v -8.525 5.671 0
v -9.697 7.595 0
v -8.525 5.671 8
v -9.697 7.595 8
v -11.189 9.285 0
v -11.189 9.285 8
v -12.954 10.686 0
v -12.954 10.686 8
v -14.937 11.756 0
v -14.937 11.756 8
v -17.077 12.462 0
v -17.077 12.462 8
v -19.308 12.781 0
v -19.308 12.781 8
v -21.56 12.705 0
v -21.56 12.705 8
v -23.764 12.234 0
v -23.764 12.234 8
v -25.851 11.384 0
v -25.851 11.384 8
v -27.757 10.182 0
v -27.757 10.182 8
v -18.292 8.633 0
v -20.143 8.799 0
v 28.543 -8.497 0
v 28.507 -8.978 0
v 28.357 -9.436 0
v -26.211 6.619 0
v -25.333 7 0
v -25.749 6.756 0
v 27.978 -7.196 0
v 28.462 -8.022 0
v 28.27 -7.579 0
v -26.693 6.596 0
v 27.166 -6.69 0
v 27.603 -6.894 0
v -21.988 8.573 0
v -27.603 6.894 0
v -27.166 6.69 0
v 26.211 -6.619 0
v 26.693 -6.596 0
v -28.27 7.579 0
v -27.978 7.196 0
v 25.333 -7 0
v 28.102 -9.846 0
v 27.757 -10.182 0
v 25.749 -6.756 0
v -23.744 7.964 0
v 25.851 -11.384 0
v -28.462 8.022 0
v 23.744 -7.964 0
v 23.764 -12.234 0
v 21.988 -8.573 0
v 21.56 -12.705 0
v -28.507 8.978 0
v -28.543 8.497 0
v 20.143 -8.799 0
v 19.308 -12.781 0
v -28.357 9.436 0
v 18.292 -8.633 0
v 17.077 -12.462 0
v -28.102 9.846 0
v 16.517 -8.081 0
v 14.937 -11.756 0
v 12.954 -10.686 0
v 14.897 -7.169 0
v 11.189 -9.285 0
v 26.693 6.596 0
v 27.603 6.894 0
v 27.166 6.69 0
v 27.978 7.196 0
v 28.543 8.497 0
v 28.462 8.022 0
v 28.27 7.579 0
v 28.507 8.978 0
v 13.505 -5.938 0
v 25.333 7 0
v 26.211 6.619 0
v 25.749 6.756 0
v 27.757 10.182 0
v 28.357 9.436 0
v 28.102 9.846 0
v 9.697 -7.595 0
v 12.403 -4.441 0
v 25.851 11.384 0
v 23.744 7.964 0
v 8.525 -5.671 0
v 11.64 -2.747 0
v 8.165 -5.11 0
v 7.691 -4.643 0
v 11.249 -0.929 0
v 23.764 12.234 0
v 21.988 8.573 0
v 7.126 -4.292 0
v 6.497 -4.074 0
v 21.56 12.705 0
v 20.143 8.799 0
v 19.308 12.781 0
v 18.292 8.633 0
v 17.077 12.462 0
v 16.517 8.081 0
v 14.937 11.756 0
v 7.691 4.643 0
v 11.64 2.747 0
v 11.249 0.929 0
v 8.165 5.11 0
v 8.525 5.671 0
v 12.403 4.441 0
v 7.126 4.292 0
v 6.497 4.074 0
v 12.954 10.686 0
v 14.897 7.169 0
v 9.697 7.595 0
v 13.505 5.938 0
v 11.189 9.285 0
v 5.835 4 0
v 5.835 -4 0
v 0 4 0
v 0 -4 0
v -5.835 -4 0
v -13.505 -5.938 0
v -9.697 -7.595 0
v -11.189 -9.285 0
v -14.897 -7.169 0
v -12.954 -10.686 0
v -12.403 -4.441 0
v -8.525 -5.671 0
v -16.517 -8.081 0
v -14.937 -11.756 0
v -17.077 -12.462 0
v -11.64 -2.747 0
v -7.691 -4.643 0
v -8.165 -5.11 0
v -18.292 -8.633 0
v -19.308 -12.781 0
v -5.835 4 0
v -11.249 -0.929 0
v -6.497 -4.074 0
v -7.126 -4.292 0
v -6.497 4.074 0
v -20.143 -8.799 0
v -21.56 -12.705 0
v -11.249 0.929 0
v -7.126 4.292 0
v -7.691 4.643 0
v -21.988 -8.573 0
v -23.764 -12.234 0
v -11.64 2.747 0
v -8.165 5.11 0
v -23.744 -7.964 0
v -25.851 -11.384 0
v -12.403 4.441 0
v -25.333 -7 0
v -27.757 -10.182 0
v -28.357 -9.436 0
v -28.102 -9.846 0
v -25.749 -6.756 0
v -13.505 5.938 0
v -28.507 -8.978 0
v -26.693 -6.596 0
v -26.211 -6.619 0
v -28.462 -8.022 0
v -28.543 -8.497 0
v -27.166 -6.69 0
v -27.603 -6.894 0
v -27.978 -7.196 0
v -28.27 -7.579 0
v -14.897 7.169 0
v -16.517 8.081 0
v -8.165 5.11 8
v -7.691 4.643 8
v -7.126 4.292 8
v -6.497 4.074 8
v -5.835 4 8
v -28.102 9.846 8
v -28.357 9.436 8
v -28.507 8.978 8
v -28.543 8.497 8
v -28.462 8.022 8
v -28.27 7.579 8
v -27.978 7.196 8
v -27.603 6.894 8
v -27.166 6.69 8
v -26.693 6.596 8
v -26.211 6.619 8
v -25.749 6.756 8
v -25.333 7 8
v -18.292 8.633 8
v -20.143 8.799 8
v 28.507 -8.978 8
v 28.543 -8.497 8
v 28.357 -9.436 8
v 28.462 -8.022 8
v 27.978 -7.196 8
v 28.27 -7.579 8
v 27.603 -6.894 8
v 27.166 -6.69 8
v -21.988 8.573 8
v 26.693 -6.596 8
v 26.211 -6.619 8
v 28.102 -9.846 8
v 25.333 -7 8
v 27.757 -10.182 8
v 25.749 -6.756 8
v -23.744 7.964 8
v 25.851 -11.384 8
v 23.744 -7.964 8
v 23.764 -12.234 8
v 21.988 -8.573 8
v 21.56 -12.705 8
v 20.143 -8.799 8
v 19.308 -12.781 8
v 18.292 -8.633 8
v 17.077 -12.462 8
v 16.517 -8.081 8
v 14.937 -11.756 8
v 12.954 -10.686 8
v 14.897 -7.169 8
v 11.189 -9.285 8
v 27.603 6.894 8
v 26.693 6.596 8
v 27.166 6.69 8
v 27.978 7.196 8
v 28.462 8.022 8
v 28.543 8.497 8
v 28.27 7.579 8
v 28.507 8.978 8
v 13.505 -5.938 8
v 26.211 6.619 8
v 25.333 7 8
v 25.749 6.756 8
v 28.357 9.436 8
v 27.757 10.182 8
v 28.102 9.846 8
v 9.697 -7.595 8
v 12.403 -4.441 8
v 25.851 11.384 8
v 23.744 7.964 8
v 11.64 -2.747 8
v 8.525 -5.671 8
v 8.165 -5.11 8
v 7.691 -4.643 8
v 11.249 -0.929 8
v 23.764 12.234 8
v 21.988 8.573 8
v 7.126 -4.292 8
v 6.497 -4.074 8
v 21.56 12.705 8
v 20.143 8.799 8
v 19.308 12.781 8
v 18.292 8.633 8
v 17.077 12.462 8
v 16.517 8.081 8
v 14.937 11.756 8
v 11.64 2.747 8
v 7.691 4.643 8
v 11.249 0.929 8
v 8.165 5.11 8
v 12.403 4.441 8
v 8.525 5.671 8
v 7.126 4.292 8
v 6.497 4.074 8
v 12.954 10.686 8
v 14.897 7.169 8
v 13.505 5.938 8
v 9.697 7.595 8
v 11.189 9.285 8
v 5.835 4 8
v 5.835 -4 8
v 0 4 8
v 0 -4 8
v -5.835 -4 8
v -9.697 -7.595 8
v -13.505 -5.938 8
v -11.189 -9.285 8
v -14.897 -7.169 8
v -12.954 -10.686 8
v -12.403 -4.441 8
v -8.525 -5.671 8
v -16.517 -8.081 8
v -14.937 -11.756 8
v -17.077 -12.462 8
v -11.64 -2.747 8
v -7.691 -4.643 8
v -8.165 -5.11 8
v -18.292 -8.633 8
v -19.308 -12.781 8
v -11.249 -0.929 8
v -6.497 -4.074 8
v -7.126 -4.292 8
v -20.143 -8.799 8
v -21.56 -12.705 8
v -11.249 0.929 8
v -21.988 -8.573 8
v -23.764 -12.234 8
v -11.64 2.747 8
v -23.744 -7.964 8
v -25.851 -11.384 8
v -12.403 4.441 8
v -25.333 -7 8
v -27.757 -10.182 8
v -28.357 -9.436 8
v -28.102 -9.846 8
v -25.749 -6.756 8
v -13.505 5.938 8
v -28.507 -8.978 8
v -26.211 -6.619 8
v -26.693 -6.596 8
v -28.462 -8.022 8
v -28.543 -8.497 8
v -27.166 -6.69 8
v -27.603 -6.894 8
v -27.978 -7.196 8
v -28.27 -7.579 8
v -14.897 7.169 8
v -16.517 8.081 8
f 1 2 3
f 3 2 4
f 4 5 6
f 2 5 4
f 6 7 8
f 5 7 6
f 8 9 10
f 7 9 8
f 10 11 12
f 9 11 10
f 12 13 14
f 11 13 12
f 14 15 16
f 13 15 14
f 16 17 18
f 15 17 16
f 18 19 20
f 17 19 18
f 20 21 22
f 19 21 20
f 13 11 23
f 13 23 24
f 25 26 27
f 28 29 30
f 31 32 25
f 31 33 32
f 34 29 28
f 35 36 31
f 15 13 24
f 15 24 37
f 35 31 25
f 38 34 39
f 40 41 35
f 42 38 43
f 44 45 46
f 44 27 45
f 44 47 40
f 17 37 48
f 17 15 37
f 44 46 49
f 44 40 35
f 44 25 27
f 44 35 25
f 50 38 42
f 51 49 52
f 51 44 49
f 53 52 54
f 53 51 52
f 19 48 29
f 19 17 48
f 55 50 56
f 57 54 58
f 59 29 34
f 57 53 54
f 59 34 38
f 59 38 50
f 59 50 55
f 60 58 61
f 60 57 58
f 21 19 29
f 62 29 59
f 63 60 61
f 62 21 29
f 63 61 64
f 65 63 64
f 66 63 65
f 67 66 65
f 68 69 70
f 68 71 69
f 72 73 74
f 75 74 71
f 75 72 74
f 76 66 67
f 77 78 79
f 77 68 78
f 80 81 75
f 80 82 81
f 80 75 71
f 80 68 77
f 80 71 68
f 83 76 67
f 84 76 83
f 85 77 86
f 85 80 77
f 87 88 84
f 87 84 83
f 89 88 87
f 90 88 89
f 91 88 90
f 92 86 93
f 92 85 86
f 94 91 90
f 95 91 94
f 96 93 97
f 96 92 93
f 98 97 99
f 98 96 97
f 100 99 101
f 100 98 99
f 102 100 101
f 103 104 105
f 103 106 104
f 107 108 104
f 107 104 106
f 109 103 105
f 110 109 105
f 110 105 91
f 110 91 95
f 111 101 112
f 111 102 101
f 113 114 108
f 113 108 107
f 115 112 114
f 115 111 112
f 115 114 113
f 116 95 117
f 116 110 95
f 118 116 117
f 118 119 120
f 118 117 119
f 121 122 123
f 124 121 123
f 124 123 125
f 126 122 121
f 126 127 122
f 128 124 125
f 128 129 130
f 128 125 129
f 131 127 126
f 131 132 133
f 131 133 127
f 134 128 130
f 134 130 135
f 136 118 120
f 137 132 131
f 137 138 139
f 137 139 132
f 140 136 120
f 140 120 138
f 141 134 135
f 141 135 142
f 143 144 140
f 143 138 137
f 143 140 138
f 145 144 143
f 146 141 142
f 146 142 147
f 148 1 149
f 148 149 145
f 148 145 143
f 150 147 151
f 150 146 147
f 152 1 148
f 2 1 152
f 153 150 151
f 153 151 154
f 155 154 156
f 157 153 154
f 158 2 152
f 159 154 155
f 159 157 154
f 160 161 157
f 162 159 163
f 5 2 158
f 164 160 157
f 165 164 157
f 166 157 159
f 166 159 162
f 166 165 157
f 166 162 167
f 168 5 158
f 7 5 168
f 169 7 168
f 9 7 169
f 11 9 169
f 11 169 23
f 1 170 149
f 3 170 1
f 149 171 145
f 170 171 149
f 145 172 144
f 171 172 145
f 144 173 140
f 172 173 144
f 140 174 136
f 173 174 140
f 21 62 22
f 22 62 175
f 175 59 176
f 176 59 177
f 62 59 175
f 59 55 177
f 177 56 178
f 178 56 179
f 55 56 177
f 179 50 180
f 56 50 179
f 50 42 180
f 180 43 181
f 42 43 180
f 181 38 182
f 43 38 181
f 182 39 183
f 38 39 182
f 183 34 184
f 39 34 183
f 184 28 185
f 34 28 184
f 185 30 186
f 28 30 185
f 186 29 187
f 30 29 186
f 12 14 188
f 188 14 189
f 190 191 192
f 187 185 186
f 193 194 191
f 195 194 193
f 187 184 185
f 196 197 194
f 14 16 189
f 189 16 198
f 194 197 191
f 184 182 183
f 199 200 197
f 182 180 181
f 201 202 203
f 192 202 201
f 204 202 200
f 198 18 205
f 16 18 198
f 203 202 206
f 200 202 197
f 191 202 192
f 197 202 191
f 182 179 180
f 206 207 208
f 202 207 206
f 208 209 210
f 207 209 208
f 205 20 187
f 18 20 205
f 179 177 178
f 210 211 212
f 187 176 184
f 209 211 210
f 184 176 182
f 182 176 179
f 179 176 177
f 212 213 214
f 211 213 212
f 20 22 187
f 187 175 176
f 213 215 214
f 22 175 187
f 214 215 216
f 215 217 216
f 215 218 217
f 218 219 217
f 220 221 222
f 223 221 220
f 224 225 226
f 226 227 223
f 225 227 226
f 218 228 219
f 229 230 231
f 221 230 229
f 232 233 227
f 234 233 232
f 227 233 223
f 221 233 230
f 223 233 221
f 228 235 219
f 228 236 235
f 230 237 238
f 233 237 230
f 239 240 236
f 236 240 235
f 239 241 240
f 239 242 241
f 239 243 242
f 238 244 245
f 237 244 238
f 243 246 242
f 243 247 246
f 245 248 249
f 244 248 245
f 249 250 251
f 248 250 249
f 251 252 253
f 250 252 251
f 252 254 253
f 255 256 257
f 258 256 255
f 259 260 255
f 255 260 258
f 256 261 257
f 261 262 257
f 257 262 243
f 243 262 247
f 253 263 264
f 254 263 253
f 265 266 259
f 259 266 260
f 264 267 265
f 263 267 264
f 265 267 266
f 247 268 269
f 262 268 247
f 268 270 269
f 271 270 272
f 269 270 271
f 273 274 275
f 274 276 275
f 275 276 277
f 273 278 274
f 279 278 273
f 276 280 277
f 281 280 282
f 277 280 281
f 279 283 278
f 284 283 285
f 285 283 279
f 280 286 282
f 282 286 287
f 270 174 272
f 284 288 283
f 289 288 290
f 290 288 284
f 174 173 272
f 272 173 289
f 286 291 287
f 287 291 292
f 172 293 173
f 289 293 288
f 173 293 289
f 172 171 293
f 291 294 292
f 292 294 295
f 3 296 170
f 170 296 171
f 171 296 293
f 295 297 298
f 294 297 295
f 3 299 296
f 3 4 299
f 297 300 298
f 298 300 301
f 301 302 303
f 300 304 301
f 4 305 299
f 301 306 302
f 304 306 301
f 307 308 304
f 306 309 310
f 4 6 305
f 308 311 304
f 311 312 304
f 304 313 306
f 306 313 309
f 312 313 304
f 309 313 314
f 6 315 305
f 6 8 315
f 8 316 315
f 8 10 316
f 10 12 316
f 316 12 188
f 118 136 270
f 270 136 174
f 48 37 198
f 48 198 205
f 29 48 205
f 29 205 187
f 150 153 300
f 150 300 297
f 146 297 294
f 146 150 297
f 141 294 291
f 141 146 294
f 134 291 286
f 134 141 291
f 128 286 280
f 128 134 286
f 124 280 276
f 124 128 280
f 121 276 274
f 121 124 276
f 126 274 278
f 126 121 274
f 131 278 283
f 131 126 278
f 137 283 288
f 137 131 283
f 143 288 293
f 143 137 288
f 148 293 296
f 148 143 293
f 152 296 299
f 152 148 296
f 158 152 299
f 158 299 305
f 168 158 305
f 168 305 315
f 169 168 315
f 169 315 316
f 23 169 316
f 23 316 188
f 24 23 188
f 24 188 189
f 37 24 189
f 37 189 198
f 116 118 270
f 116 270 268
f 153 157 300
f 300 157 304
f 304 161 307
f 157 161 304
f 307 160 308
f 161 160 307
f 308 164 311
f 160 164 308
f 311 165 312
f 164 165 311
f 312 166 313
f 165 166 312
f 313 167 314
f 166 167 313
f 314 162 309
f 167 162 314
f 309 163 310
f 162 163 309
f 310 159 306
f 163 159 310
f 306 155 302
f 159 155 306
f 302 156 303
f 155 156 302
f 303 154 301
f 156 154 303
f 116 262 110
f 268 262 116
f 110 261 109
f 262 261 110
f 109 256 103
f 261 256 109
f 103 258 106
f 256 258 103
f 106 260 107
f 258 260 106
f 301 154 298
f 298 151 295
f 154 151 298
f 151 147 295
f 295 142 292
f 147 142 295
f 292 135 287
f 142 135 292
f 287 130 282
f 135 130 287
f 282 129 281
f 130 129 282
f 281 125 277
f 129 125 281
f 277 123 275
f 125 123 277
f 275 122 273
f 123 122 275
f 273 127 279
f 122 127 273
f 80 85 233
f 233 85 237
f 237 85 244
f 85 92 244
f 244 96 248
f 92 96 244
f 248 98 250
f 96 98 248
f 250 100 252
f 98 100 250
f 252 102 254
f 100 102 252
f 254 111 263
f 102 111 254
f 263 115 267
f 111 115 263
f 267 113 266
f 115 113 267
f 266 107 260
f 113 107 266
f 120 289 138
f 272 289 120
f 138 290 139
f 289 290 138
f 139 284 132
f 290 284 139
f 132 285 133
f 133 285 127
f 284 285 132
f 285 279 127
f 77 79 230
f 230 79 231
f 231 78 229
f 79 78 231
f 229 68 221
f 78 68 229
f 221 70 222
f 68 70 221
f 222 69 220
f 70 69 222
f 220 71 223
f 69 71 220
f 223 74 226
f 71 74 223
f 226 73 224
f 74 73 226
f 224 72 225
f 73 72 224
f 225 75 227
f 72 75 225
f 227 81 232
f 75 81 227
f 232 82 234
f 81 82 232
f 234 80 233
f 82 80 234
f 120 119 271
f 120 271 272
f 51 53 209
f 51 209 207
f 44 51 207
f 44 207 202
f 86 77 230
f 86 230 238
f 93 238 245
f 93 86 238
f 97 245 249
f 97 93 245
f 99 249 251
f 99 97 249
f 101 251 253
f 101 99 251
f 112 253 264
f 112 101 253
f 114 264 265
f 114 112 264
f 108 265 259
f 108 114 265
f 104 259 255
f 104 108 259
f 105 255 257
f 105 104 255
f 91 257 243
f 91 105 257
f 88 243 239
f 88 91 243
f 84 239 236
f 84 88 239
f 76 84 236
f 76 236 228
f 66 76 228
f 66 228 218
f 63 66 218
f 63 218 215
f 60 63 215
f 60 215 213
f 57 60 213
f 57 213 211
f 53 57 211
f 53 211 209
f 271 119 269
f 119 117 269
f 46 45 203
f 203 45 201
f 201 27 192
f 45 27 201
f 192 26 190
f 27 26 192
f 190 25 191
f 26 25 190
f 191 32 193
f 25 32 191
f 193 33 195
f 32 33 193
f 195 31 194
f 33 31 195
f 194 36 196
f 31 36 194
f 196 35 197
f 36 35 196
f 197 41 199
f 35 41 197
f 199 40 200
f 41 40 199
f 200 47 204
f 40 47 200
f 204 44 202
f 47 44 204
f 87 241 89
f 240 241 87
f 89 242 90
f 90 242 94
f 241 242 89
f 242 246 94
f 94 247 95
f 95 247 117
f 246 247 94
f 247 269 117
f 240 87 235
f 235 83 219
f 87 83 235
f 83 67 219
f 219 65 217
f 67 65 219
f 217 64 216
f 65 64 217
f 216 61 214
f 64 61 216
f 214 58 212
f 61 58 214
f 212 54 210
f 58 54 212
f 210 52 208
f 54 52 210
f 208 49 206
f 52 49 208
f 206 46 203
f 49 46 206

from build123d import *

# Parameters (mm, degrees)
PAD_DEPTH = 8
FILLET_R  = 3


with BuildPart() as part:
    # Sketch → Pad (new body)
    with BuildSketch(Plane.XY):
        with BuildLine():
            ThreePointArc((-25.332917, -7), (-11.2, 0), (-25.332917, 7))
            ThreePointArc((-27.75697, 10.181818), (-28.135852, 7.378883), (-25.332917, 7))
            ThreePointArc((-7.841053, 4), (-16.205521, 12.224644), (-27.75697, 10.181818))
            Line((0, 4), (-7.841053, 4))
            Line((0, 4), (7.841053, 4))
            ThreePointArc((27.75697, 10.181818), (16.205521, 12.224644), (7.841053, 4))
            ThreePointArc((25.332917, 7), (28.135852, 7.378883), (27.75697, 10.181818))
            ThreePointArc((25.332917, 7), (11.2, 0), (25.332917, -7))
            ThreePointArc((27.75697, -10.181818), (28.135852, -7.378883), (25.332917, -7))
            ThreePointArc((7.841053, -4), (16.205521, -12.224644), (27.75697, -10.181818))
            Line((0, -4), (7.841053, -4))
            Line((0, -4), (-7.841053, -4))
            ThreePointArc((-27.75697, -10.181818), (-16.205521, -12.224644), (-7.841053, -4))
            ThreePointArc((-25.332917, -7), (-28.135852, -7.378883), (-27.75697, -10.181818))
        make_face()
    extrude(amount=PAD_DEPTH)

    # Fillet
    fillet_edges = [part.edges().sort_by_distance(p)[0] for p in [
        (-7.841053, -4, 4),
        (7.841053, -4, 4),
        (-7.841053, 4, 4),
        (7.841053, 4, 4),
    ]]
    fillet(fillet_edges, radius=FILLET_R)


solid = part.part
